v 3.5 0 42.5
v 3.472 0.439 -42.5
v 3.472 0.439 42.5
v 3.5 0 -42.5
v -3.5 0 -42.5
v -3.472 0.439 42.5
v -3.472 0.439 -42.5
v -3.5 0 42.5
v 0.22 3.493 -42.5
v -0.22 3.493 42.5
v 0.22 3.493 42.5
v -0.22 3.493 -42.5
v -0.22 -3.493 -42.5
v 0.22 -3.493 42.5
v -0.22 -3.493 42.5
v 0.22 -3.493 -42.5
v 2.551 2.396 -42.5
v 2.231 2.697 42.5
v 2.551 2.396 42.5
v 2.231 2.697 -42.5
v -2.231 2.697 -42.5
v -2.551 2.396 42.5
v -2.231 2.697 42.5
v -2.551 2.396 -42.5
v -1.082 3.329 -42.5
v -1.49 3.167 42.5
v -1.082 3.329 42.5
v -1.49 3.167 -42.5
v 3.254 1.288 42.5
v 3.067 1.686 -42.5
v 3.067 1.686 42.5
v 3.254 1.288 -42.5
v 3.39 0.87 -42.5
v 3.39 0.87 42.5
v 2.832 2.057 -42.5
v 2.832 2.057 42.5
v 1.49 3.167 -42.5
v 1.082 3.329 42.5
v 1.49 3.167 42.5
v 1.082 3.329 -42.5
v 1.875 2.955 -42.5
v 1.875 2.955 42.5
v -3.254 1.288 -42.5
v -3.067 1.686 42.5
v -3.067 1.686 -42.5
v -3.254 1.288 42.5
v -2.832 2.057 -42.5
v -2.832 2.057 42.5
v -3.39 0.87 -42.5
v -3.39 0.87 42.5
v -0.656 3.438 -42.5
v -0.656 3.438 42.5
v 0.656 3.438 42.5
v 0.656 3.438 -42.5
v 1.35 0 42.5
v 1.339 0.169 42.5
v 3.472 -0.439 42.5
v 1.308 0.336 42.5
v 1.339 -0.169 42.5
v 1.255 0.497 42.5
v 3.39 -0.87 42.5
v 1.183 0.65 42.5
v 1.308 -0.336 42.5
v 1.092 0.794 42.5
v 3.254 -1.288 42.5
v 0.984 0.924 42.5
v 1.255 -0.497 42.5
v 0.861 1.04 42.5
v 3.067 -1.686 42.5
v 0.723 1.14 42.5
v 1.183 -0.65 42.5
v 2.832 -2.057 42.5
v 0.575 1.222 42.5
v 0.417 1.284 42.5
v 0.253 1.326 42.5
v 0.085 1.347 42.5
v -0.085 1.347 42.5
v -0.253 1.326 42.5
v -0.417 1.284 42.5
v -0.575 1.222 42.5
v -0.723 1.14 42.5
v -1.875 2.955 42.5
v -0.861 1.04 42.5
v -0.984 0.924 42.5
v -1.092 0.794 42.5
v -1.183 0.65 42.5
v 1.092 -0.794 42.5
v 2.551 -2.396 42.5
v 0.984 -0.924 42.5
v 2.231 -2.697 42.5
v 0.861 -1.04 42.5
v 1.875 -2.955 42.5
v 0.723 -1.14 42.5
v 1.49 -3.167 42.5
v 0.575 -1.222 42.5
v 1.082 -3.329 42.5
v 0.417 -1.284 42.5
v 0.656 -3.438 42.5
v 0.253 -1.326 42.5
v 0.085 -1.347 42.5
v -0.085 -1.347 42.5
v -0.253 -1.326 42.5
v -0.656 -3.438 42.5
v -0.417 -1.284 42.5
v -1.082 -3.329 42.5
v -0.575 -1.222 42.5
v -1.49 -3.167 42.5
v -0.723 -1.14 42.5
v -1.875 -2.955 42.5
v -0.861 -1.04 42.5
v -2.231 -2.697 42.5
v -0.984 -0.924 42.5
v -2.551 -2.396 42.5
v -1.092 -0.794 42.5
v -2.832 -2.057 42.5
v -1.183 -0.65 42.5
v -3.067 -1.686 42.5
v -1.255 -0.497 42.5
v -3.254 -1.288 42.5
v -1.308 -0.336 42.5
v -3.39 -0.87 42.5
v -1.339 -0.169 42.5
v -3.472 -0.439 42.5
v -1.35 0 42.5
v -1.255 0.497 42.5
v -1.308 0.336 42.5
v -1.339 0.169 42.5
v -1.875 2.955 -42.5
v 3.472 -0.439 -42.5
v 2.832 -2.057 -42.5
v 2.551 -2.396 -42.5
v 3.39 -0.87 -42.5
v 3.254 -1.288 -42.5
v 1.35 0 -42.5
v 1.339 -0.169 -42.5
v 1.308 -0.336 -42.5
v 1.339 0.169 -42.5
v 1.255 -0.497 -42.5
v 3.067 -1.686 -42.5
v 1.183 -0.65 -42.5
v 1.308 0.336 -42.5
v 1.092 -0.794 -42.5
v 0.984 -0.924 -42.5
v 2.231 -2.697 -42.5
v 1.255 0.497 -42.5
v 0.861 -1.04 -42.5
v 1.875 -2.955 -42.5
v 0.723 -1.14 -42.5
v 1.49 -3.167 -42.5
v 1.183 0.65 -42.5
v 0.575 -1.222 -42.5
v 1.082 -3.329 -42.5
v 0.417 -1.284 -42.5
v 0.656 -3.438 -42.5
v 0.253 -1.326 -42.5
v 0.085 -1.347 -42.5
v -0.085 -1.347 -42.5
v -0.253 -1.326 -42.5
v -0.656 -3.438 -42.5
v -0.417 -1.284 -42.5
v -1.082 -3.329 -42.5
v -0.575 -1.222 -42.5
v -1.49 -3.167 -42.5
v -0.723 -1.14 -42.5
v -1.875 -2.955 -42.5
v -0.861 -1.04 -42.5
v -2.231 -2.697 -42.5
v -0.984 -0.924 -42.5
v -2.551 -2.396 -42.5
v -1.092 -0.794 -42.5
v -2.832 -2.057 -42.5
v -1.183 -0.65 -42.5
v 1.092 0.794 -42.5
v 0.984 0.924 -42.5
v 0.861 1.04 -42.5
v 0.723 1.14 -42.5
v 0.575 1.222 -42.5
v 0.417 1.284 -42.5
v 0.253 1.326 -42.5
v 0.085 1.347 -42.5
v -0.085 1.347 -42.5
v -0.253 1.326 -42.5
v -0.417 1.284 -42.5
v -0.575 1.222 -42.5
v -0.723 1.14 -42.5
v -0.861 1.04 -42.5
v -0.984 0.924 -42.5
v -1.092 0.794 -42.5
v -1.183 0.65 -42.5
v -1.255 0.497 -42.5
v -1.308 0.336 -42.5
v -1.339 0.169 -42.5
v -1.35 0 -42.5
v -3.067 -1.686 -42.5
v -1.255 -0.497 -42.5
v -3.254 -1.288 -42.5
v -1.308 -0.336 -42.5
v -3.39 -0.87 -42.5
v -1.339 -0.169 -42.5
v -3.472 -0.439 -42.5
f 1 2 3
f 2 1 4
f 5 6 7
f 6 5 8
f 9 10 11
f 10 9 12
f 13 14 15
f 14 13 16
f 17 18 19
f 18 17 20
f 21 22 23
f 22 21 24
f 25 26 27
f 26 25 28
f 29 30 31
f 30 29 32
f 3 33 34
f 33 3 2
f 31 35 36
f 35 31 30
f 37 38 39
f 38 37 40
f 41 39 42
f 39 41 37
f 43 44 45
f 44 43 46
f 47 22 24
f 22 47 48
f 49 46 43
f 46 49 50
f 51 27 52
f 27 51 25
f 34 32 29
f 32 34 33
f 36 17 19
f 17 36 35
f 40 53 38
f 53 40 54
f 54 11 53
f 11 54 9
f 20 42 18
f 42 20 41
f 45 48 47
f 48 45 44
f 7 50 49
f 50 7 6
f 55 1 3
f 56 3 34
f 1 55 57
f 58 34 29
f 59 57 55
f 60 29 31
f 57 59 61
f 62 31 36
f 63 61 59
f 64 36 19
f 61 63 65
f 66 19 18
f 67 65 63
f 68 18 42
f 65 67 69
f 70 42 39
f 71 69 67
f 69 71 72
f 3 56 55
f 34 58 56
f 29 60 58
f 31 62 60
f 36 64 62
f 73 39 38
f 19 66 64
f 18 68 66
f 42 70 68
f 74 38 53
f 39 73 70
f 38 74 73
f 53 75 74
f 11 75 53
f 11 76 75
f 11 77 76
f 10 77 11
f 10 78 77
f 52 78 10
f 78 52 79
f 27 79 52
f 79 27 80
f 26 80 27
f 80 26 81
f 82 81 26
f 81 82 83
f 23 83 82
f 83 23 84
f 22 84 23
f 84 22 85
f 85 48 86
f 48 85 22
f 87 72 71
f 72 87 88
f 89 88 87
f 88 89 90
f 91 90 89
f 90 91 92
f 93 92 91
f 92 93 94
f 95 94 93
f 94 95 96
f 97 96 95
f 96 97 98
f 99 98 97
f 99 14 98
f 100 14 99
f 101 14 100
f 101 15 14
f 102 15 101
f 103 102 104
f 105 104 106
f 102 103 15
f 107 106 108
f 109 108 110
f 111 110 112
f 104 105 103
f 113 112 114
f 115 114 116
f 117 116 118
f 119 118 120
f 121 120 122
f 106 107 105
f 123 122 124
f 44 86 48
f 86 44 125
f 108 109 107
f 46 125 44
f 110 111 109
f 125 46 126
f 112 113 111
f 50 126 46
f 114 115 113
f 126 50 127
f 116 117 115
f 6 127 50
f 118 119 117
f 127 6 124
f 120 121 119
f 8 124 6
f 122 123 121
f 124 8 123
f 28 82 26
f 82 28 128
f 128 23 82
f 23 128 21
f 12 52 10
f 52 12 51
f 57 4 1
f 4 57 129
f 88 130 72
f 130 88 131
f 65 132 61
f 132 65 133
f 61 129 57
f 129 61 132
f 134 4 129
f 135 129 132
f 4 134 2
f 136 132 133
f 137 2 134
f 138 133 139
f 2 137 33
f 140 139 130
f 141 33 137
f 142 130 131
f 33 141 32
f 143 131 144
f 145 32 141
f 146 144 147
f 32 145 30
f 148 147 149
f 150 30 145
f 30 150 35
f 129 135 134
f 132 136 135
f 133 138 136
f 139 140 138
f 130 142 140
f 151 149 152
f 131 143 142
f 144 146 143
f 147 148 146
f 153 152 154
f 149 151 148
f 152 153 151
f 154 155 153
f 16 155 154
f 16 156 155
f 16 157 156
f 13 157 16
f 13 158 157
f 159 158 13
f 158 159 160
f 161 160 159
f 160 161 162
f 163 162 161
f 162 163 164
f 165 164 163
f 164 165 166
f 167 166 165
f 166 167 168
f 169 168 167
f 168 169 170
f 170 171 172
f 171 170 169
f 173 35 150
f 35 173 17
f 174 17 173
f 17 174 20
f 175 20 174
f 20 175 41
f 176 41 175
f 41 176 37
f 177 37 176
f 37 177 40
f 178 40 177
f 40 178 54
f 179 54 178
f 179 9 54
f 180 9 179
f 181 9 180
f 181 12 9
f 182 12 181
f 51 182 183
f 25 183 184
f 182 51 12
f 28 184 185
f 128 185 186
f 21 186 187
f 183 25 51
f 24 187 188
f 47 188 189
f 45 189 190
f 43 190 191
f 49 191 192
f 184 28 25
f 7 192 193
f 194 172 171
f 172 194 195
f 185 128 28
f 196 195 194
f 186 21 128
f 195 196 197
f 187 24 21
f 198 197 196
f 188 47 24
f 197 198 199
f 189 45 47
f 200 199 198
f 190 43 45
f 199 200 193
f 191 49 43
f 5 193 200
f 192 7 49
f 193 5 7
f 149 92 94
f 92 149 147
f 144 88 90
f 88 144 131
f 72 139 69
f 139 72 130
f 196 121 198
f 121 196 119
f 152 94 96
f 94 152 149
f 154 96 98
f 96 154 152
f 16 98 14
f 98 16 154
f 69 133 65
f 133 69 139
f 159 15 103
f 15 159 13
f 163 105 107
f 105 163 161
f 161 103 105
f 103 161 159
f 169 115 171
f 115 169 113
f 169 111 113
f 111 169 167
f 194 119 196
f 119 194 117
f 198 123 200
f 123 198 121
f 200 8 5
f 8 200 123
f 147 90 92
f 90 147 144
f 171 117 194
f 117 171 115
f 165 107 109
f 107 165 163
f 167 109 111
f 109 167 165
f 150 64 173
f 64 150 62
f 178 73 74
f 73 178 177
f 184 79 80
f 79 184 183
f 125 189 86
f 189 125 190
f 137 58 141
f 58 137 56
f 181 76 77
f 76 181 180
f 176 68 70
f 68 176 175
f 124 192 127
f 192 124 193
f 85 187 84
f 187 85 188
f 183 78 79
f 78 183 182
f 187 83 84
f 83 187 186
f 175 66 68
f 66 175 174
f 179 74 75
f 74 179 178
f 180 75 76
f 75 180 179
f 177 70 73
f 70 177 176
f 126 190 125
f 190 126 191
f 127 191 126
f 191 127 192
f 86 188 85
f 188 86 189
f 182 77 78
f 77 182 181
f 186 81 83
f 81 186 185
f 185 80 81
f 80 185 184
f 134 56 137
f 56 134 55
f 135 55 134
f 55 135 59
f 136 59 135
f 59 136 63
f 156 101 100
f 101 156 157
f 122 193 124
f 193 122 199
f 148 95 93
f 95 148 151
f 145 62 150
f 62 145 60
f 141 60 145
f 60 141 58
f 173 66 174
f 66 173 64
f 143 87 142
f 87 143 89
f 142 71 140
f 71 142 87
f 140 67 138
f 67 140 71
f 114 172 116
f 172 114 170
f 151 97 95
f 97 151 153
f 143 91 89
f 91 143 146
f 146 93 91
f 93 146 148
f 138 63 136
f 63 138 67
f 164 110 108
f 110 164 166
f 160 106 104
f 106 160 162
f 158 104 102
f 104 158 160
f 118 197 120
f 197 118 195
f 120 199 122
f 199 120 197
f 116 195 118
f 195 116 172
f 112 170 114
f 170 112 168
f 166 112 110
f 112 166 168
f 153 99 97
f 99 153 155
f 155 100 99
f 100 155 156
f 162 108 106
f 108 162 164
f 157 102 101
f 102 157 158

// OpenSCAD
$fn = 50;


difference() {
	union() {
		translate(v = [0, 0, -42.5000000000]) {
			cylinder(h = 85, r = 3.5000000000);
		}
	}
	union() {
		translate(v = [0, 0, -100.0000000000]) {
			cylinder(h = 200, r = 1.3500000000);
		}
	}
}
